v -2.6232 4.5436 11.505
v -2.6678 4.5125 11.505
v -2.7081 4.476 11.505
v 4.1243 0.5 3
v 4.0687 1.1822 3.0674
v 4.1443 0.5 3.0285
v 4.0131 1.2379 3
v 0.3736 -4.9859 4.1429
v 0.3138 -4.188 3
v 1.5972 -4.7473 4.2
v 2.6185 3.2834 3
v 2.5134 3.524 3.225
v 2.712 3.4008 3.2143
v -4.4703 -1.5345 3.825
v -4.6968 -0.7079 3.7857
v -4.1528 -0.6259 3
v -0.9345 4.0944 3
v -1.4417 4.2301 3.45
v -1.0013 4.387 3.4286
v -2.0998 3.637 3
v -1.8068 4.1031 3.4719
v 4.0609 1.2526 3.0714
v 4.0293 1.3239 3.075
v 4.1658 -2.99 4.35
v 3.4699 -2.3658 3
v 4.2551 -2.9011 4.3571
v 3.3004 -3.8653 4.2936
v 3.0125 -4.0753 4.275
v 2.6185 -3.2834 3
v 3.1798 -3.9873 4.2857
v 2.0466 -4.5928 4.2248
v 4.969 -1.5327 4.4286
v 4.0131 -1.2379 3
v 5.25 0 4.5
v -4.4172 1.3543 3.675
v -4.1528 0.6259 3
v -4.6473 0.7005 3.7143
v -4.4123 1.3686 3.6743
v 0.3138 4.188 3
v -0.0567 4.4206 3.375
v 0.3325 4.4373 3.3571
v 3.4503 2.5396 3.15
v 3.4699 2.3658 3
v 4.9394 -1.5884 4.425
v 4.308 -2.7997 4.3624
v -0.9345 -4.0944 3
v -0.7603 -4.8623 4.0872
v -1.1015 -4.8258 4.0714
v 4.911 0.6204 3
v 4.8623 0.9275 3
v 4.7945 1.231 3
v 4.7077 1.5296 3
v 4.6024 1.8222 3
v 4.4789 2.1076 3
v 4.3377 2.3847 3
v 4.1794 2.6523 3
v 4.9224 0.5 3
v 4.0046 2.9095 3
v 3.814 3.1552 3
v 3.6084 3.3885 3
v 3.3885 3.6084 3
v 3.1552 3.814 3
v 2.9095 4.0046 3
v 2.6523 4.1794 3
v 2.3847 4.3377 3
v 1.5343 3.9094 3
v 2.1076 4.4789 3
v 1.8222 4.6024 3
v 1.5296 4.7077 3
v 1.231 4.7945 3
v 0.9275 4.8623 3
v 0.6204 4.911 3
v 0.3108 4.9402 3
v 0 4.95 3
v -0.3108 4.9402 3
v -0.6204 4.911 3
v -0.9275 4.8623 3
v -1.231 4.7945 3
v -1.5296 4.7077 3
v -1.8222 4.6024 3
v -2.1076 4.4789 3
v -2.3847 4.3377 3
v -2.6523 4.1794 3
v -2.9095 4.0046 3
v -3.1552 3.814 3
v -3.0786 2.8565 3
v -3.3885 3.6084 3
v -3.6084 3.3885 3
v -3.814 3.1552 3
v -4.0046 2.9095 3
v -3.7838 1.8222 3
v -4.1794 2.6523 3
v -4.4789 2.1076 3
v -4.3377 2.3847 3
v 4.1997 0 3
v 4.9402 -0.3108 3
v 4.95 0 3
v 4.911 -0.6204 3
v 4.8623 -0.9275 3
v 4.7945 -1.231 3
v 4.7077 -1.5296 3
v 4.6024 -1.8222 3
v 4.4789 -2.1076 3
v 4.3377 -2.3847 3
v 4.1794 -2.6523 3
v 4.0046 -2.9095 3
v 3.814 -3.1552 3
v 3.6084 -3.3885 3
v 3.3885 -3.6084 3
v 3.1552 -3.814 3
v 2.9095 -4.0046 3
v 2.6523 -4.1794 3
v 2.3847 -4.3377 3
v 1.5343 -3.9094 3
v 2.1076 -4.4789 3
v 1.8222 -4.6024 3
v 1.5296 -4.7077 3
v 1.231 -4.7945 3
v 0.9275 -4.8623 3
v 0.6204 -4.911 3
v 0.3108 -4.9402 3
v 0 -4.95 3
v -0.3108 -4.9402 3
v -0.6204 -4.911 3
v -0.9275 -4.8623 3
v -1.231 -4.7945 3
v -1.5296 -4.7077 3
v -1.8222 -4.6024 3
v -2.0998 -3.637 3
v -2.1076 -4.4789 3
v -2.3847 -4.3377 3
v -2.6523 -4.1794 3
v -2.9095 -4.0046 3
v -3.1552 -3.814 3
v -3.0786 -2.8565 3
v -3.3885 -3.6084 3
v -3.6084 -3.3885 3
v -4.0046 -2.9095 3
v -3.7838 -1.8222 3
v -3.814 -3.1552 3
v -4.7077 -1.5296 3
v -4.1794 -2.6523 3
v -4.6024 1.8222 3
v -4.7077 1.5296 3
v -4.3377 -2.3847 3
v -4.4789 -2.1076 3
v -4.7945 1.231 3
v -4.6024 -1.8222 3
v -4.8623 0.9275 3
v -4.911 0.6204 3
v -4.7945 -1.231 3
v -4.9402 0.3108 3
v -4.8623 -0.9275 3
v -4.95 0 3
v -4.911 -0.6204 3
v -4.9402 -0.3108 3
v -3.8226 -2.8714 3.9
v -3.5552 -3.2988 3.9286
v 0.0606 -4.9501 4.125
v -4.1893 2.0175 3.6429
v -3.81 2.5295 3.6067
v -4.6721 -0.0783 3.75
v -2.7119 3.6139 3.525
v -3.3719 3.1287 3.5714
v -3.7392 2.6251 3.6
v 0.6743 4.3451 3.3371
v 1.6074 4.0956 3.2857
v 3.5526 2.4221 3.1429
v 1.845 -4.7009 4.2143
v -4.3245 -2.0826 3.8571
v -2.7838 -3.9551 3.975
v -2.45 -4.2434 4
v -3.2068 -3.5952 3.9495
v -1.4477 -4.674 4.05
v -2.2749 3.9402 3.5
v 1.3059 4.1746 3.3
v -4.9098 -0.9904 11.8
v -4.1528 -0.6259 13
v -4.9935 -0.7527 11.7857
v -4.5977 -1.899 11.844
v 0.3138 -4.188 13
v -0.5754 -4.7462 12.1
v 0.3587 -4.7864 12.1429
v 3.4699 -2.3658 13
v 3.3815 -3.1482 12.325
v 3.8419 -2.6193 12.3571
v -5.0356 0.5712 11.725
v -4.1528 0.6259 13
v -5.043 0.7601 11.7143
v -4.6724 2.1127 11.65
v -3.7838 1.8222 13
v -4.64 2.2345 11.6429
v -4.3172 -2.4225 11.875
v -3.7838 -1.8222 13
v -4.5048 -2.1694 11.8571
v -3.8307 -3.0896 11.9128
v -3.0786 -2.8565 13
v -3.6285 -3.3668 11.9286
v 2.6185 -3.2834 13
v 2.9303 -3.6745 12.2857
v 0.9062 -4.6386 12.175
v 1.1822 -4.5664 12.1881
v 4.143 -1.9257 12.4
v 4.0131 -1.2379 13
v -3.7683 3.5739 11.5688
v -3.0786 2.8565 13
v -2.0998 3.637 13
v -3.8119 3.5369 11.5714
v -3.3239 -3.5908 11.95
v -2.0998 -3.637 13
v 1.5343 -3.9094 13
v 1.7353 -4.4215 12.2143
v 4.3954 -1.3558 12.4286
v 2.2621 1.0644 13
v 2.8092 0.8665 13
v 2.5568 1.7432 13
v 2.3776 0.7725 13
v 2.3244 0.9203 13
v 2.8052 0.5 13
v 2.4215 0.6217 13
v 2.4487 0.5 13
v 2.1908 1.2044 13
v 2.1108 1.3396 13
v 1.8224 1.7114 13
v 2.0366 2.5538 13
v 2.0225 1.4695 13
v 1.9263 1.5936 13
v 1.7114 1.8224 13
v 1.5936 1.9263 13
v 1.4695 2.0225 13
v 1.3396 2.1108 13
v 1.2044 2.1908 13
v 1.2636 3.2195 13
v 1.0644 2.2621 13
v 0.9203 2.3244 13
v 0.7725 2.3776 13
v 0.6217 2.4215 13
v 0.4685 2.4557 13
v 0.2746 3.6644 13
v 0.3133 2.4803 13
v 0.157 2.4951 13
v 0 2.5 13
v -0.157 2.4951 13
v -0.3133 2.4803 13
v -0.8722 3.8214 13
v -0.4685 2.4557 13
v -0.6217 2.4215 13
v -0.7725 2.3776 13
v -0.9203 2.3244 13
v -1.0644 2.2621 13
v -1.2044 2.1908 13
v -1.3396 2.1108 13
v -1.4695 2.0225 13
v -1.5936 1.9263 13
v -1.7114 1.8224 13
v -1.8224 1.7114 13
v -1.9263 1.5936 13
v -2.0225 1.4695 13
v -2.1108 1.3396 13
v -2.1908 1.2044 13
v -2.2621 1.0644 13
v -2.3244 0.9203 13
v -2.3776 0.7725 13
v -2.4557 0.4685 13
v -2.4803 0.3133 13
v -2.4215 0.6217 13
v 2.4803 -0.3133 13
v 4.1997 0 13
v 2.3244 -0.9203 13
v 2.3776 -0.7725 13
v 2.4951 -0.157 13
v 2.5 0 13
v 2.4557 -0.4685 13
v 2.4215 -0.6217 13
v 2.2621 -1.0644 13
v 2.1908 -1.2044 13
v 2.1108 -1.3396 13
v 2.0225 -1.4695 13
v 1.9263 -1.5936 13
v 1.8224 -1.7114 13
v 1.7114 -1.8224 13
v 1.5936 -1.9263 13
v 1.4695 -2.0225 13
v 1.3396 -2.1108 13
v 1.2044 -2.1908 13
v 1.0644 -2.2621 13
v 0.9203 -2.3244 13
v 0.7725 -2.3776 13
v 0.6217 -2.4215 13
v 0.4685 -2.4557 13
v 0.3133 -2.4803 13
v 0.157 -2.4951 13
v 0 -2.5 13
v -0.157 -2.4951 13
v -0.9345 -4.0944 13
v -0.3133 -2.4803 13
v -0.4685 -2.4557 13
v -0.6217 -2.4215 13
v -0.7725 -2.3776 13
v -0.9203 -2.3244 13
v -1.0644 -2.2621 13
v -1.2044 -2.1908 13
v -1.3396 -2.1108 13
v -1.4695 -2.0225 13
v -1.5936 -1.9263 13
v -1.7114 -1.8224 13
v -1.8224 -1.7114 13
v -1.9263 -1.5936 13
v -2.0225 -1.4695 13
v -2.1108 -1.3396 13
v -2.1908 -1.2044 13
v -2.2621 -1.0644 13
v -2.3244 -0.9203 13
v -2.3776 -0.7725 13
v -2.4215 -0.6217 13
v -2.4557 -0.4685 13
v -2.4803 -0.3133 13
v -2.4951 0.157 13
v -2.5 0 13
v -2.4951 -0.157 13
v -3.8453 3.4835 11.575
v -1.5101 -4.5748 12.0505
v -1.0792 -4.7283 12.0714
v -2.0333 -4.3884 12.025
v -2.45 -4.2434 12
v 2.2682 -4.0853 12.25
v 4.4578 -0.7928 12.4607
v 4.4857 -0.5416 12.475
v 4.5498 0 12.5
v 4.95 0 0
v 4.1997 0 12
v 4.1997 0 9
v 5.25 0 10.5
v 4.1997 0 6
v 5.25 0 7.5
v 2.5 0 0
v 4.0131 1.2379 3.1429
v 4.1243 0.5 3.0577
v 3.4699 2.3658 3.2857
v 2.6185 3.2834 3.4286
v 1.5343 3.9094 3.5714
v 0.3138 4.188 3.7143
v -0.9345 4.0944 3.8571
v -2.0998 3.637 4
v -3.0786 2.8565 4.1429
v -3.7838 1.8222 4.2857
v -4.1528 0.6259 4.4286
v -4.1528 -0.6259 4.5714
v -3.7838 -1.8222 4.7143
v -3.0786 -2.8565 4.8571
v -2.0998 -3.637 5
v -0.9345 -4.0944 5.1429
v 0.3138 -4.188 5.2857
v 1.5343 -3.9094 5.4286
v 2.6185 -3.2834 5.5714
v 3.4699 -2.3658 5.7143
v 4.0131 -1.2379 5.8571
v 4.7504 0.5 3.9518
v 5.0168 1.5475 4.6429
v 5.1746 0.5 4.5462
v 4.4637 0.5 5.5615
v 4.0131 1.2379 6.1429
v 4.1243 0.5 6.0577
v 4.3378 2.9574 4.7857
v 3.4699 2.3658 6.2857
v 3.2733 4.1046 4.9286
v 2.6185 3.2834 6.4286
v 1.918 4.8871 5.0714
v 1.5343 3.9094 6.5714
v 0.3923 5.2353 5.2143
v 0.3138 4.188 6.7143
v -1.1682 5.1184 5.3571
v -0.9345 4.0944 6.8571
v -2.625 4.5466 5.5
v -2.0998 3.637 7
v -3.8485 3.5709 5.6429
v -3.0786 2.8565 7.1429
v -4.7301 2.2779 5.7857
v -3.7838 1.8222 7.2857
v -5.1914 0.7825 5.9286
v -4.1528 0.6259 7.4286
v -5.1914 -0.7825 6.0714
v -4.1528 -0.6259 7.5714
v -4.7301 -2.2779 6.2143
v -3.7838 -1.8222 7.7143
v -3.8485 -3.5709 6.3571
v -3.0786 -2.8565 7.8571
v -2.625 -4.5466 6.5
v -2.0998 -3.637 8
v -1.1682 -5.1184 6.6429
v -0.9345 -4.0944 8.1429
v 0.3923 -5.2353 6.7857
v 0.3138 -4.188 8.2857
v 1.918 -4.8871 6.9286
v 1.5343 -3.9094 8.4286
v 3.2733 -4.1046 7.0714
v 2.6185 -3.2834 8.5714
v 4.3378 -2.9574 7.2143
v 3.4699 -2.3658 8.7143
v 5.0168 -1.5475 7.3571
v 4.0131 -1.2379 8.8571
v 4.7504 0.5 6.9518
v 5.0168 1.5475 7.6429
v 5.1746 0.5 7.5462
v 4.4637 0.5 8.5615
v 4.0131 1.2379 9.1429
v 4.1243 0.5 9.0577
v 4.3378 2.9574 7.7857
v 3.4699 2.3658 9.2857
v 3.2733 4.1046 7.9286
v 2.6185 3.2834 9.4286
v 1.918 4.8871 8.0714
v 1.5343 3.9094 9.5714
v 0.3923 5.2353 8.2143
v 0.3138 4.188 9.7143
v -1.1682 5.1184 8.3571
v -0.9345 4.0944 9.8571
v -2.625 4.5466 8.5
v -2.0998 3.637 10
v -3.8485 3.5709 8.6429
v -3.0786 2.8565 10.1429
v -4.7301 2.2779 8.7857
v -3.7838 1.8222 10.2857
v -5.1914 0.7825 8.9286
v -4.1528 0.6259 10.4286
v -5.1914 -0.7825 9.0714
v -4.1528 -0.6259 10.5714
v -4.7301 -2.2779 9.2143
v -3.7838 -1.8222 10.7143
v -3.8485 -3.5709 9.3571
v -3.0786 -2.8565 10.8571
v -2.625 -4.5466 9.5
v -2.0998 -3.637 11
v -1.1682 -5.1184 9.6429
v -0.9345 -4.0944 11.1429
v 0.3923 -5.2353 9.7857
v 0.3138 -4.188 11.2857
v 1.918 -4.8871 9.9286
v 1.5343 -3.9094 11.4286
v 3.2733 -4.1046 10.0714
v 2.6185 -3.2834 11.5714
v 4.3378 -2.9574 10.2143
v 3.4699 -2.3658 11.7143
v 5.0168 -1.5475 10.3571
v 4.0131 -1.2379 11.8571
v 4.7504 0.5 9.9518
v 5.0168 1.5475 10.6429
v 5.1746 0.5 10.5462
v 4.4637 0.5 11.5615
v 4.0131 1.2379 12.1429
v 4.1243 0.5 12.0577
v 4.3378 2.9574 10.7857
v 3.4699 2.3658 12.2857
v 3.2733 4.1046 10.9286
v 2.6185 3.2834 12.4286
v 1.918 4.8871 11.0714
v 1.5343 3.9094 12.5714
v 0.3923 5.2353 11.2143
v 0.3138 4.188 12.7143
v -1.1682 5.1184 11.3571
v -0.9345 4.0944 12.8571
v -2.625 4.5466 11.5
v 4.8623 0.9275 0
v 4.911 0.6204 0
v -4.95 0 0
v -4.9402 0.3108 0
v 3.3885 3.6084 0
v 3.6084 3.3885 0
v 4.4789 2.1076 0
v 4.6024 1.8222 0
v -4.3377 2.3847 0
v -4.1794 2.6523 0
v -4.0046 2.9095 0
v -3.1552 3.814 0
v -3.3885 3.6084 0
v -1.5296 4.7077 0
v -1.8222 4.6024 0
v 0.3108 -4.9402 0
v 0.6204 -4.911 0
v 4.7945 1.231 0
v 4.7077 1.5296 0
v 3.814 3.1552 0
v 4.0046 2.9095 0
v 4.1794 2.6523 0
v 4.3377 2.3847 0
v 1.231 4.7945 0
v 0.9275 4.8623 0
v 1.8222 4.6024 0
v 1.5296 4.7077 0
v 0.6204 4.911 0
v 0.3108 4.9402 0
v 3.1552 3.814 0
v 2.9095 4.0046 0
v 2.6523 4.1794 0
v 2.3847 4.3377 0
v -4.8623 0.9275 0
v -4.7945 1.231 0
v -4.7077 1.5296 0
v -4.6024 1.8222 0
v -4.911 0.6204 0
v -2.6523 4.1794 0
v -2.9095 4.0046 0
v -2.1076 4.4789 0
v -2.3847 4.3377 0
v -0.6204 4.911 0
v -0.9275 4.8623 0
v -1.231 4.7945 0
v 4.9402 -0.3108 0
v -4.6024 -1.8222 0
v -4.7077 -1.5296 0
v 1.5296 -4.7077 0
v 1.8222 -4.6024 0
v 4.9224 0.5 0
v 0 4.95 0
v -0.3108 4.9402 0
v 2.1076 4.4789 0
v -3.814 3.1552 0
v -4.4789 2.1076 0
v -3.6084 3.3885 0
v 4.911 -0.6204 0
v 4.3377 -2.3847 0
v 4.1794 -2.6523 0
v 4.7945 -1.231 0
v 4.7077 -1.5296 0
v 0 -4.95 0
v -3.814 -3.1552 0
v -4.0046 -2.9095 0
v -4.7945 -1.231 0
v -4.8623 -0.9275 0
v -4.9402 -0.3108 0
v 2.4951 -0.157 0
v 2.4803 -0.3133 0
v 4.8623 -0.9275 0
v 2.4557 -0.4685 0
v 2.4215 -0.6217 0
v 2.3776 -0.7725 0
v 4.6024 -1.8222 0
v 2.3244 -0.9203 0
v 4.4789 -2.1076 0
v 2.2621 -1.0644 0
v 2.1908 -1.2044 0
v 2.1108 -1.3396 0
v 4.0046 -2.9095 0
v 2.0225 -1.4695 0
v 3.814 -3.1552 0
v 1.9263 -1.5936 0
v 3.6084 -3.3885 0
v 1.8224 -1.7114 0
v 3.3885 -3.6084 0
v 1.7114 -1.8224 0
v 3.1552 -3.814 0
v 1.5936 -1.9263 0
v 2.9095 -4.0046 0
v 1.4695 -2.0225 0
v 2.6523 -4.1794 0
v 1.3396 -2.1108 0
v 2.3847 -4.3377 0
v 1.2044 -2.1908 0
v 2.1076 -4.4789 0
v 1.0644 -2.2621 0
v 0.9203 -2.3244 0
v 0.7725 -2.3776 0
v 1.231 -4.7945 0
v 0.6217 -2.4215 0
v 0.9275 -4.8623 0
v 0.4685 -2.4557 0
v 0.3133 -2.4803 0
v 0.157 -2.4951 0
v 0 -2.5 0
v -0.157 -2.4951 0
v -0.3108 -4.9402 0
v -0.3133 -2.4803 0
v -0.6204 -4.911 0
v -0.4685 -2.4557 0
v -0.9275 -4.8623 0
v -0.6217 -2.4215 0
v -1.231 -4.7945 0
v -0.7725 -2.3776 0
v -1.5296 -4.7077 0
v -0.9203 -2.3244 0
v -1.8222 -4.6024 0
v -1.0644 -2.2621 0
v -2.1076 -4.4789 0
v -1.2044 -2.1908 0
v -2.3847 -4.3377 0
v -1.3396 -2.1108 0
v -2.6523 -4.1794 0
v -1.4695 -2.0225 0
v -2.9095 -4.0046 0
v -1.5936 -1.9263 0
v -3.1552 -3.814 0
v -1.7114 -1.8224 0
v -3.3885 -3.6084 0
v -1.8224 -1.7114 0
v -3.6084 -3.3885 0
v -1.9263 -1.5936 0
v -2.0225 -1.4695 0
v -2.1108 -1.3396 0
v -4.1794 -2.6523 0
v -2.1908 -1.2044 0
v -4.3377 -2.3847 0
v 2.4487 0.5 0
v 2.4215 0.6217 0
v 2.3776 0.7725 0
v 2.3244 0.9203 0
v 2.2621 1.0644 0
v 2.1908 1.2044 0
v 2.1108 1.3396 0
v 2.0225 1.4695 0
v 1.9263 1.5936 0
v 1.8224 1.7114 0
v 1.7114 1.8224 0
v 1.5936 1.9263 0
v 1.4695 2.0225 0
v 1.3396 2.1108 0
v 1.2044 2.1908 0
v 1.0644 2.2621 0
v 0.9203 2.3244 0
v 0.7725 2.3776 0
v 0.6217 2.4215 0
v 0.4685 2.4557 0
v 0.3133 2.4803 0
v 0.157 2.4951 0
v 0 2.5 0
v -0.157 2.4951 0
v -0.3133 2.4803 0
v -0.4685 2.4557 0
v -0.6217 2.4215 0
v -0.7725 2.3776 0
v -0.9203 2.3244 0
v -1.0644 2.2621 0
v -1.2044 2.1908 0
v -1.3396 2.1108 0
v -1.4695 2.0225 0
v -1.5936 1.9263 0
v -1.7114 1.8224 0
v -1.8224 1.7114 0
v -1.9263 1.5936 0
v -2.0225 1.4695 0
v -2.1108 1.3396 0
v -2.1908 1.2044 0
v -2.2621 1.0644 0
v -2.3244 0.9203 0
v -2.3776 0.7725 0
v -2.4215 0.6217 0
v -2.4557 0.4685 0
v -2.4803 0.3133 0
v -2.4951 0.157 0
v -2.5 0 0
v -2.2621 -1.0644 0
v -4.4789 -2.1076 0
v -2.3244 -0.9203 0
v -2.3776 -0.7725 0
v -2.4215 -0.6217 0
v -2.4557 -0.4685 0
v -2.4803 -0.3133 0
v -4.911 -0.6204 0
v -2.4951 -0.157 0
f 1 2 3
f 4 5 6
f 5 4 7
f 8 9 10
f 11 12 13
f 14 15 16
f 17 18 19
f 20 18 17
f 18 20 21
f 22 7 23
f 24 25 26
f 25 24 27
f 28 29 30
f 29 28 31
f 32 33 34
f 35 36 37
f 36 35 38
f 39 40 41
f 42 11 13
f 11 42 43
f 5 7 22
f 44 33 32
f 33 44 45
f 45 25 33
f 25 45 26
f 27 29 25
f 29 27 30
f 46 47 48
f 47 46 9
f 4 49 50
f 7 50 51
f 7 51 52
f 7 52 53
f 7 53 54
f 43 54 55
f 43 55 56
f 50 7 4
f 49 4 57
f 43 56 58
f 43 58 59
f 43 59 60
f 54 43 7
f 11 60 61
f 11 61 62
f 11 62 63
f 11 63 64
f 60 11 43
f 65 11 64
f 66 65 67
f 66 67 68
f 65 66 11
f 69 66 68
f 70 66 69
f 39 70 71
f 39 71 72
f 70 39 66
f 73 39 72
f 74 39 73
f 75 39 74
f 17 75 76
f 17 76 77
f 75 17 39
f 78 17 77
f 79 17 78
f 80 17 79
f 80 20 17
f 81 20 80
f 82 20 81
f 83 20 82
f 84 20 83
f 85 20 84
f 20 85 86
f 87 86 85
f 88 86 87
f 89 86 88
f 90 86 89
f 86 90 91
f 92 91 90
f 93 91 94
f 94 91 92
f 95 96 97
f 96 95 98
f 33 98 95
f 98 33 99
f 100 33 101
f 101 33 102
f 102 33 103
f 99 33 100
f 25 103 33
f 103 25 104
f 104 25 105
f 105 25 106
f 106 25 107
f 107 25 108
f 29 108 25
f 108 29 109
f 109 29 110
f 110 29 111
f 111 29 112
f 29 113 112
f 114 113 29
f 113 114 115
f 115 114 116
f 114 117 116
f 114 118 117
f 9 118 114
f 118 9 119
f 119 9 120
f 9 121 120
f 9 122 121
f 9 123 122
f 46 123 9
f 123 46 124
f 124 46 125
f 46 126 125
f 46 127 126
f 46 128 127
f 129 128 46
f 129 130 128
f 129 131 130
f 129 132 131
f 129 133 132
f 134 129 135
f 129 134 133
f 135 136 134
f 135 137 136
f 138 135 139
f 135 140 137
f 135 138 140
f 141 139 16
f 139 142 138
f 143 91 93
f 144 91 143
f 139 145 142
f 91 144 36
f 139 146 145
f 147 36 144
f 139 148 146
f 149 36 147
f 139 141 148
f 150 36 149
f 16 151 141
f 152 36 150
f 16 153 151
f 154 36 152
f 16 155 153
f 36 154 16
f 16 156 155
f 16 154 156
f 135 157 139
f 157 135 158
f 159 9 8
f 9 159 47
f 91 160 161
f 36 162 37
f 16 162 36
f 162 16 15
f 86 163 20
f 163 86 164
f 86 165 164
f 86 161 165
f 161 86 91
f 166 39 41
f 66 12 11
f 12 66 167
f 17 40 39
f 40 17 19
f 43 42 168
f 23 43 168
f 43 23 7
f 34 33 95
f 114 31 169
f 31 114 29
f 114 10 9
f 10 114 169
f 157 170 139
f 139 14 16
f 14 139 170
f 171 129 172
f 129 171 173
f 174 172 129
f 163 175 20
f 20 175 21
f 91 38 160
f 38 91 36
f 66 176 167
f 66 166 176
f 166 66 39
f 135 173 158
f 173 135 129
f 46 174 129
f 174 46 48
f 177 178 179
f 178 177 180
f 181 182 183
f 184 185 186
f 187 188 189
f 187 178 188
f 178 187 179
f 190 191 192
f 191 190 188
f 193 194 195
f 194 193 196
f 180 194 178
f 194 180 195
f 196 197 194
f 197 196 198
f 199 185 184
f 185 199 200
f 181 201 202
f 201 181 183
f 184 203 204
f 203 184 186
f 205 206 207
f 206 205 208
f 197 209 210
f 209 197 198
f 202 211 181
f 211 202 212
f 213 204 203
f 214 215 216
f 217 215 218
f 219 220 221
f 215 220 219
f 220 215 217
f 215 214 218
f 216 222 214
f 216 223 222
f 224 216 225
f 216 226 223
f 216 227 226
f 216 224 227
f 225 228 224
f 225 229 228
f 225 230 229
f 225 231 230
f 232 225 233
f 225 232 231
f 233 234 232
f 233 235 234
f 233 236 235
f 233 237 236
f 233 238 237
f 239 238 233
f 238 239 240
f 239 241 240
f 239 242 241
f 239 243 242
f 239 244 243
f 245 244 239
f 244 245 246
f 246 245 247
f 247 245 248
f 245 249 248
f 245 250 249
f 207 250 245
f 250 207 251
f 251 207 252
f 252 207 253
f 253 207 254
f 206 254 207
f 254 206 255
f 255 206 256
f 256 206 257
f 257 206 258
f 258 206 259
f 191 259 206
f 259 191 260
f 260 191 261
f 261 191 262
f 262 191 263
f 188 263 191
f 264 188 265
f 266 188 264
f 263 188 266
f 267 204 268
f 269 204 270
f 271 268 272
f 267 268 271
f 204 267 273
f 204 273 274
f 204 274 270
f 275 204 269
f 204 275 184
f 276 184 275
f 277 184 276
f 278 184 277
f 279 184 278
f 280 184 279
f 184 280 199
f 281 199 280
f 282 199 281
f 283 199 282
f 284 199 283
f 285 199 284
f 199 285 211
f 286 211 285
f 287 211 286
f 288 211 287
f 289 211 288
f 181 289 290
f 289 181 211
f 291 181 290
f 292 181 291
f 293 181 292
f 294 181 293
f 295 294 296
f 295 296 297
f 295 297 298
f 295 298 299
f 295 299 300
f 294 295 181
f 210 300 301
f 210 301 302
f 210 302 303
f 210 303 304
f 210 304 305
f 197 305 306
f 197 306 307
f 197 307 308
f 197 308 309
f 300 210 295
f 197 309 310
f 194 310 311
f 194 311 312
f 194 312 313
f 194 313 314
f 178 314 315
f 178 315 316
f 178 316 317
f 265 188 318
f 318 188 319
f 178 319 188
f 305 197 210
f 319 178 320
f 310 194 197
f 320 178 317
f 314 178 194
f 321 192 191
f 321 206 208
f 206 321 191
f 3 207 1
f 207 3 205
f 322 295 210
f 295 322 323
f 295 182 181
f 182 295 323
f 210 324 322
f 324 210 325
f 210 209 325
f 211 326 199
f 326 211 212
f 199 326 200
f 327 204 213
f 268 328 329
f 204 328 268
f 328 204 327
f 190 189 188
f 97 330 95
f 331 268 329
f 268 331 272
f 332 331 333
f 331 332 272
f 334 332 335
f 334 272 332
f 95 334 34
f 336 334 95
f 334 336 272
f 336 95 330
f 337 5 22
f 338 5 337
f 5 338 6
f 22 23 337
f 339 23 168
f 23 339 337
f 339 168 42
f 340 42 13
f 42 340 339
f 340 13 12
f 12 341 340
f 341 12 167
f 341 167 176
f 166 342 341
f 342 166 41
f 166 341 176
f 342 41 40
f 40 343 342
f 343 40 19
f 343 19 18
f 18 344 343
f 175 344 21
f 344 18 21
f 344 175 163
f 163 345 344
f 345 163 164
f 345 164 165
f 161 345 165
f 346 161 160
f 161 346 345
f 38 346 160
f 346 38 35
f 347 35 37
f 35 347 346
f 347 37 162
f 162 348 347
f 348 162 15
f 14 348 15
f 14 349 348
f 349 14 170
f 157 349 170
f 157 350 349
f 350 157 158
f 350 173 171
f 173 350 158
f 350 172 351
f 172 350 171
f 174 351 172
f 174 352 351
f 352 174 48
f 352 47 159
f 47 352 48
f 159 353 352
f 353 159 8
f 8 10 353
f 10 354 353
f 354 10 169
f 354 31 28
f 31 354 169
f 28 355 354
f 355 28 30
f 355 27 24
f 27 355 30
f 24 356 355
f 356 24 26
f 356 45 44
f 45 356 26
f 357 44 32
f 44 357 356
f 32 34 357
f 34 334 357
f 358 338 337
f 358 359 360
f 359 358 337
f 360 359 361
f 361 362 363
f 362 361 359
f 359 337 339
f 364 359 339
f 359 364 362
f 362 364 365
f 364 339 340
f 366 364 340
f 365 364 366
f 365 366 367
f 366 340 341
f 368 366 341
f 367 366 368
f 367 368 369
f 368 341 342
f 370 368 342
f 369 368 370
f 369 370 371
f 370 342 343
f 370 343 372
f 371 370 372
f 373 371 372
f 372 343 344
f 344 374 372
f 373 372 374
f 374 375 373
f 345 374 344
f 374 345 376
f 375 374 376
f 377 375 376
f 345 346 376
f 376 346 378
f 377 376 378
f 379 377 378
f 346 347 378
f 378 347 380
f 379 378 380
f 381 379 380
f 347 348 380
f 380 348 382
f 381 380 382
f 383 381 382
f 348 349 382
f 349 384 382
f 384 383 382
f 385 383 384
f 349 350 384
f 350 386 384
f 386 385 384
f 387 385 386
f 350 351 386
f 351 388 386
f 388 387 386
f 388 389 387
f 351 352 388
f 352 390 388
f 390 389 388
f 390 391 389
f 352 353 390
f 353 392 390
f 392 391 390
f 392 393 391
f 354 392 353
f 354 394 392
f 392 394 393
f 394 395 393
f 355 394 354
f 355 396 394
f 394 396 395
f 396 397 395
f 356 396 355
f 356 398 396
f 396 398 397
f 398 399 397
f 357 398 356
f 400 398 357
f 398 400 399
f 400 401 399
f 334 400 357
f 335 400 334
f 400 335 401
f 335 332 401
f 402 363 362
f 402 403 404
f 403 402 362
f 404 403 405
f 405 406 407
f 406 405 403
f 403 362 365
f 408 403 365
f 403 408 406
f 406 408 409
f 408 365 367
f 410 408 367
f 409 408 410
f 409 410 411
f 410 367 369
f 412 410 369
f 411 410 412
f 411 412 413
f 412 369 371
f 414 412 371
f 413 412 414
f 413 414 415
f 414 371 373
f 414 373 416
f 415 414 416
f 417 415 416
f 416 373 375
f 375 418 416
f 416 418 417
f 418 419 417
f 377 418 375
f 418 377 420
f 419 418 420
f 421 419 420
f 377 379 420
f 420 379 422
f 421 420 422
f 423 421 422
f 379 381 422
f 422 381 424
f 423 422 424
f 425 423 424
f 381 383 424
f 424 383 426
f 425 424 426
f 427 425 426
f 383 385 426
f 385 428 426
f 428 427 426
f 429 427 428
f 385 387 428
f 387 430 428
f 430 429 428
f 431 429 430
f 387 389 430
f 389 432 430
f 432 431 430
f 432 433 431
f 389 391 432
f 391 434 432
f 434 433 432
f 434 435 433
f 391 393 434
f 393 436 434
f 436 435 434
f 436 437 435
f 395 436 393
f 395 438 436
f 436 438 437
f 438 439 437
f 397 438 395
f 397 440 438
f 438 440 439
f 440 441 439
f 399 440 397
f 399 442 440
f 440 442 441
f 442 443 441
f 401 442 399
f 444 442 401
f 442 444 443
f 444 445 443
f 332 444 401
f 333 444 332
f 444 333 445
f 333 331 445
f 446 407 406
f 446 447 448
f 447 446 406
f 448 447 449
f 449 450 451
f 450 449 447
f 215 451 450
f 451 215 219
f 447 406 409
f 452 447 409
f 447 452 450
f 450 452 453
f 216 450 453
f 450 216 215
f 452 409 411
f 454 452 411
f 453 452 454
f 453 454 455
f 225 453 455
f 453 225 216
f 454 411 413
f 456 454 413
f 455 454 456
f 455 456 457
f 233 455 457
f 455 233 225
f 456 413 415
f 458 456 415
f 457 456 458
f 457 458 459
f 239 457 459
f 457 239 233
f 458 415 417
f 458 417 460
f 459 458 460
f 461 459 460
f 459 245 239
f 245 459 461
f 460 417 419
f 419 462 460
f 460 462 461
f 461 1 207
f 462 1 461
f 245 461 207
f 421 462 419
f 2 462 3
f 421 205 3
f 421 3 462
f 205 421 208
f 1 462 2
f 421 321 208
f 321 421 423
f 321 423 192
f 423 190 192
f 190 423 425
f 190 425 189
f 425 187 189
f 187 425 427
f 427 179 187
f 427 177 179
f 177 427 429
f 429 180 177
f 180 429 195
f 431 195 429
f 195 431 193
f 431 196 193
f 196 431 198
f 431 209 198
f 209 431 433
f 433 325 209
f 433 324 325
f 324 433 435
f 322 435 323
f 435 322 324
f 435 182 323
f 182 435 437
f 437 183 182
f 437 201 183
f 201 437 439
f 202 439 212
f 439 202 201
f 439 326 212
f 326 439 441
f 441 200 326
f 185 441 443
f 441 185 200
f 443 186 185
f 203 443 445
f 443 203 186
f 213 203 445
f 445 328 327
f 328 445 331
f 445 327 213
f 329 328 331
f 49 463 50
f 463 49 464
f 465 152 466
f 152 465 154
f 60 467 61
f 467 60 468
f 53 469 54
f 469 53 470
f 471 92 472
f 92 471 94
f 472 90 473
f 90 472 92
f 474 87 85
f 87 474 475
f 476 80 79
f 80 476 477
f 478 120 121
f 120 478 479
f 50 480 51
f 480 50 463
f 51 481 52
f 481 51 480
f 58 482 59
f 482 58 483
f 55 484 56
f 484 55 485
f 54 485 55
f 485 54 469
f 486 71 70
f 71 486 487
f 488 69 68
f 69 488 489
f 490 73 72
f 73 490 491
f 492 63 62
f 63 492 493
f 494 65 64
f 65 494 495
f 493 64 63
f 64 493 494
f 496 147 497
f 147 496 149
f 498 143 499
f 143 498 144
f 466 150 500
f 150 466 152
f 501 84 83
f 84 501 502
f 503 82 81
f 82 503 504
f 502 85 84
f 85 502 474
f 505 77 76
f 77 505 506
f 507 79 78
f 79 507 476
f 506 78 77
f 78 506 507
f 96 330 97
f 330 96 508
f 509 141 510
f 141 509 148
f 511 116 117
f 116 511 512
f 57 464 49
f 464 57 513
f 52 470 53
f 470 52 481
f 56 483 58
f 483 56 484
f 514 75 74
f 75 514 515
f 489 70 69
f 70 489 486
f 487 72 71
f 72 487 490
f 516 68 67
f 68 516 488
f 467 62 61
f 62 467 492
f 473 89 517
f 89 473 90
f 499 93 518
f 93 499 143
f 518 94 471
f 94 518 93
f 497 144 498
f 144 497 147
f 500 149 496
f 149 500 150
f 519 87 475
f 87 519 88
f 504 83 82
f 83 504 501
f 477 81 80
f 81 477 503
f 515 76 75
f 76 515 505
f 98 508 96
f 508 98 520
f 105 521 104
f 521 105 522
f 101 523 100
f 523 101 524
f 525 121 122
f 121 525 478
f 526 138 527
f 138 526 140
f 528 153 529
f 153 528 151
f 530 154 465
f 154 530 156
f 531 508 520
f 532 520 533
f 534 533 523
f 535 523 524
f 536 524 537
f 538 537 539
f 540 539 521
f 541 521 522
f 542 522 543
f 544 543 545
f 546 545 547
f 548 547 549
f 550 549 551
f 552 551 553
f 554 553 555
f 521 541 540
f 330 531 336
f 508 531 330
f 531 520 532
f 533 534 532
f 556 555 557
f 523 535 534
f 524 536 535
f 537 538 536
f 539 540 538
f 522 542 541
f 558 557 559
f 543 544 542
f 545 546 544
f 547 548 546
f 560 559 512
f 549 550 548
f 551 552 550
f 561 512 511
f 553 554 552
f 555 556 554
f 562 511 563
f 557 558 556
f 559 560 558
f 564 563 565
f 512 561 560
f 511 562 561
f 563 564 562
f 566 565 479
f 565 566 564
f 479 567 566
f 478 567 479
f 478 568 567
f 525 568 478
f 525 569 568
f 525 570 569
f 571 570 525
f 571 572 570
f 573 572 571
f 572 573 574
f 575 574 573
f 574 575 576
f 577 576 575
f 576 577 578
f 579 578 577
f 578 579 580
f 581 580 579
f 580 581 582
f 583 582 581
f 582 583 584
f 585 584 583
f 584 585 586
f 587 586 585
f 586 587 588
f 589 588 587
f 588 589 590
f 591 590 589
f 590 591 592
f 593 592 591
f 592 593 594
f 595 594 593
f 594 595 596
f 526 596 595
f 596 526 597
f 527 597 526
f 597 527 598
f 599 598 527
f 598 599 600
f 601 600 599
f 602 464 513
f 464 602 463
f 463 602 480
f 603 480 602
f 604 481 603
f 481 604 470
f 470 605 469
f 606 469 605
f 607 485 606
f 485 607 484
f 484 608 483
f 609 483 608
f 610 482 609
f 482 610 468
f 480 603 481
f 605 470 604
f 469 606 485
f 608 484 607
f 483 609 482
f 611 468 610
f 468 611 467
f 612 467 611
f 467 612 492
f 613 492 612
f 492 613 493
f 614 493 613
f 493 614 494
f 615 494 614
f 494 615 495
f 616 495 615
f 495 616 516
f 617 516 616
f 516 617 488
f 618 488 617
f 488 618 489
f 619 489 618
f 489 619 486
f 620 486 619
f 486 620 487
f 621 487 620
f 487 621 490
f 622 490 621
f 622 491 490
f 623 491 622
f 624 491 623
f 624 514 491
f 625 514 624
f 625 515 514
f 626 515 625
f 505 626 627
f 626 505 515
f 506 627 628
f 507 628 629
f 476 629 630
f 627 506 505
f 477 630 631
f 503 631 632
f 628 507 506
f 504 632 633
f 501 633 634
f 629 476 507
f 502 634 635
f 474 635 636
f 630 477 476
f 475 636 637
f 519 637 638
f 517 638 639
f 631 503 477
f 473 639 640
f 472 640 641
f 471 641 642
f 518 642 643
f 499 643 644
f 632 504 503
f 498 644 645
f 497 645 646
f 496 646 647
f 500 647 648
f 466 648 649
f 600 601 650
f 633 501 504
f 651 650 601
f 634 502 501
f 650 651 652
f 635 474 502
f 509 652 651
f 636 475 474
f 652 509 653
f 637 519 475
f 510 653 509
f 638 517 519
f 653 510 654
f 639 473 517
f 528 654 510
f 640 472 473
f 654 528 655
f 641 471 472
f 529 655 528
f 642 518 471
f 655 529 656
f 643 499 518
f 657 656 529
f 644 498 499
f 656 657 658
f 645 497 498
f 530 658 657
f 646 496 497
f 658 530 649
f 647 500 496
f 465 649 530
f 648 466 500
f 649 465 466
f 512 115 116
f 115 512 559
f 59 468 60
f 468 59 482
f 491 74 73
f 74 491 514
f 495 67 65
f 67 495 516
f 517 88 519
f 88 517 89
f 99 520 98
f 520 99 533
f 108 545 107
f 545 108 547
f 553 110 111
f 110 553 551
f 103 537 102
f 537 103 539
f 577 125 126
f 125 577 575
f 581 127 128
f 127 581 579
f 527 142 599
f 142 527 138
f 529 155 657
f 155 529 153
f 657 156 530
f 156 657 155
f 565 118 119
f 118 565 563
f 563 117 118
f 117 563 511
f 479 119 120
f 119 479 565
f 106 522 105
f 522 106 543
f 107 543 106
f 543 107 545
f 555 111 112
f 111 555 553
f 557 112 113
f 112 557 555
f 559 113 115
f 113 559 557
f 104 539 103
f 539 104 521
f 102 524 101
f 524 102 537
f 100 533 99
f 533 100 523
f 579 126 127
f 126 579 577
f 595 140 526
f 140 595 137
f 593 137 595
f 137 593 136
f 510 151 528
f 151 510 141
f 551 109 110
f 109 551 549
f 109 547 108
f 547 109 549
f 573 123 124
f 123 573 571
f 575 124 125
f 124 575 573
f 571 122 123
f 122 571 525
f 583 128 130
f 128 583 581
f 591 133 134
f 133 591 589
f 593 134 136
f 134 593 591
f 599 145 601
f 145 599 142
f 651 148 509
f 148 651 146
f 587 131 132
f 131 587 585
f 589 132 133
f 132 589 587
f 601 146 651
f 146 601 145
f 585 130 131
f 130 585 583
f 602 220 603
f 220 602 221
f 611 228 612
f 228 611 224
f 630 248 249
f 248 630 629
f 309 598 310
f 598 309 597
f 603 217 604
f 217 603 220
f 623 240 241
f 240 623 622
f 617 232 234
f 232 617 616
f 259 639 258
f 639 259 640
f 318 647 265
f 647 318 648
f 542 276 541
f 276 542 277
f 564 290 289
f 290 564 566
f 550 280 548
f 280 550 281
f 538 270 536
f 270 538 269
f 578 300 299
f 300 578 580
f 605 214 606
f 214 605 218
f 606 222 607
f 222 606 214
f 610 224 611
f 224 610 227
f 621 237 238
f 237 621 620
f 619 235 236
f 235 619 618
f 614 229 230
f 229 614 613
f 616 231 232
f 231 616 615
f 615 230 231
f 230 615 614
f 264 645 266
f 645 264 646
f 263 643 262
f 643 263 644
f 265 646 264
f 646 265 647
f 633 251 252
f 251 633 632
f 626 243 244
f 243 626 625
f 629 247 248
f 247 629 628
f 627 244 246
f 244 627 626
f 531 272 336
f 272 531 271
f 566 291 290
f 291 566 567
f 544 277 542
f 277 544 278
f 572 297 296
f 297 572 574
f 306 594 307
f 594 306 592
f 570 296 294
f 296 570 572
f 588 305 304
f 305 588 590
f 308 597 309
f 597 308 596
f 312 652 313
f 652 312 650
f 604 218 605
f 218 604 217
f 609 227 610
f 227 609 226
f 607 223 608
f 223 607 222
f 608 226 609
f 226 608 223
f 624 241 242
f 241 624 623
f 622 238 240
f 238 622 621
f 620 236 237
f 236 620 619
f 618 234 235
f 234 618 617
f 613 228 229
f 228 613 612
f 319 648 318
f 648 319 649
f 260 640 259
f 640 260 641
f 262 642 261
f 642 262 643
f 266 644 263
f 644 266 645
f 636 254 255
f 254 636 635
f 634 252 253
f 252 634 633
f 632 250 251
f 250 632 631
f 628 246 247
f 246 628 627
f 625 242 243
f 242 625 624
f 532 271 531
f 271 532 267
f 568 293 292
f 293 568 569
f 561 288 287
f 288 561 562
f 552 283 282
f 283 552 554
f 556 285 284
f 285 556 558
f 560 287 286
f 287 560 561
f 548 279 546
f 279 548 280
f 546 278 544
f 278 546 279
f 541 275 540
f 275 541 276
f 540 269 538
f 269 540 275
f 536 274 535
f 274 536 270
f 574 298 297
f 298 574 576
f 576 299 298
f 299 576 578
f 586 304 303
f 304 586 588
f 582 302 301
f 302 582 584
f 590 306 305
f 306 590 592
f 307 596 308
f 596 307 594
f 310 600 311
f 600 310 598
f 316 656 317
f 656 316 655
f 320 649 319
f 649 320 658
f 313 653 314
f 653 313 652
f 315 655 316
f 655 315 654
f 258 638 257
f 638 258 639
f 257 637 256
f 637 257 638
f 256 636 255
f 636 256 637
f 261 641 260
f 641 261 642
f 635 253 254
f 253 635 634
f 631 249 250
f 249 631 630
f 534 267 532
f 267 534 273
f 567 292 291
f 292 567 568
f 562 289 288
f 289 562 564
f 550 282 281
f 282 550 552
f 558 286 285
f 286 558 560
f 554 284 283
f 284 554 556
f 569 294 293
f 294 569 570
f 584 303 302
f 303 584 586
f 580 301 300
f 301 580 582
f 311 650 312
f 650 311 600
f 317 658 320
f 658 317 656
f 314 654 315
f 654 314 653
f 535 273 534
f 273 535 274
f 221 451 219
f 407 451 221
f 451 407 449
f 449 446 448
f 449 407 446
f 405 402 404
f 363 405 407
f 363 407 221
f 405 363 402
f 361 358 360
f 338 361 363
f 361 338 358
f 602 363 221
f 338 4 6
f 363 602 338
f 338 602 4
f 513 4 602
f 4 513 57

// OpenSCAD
// file: ../src/polyScrewThread_r1.scad
/*
 *    polyScrewThread_r1.scad    by aubenc @ Thingiverse
 *
 * This script contains the library modules that can be used to generate
 * threaded rods, screws and nuts.
 *
 * http://www.thingiverse.com/thing:8796
 *
 * CC Public Domain
 */


/* Example:
 * Just a 100mm long threaded rod.
 *
 * screw_thread(15,   // Outer diameter of the thread
 *               4,   // Step, traveling length per turn, also, tooth height, whatever...
 *              55,   // Degrees for the shape of the tooth 
 *                       (XY plane = 0, Z = 90, btw, 0 and 90 will/should not work...)
 *             100,   // Length (Z) of the tread
 *            PI/2,   // Resolution, one face each "PI/2" mm of the perimeter, 
 *               0);  // Countersink style:
 *                         -2 - Not even flat ends
 *                         -1 - Bottom (countersink'd and top flat)
 *                          0 - None (top and bottom flat)
 *                          1 - Top (bottom flat)
 *                          2 - Both (countersink'd)
 */
module screw_thread(od,st,lf0,lt,rs,cs)
{
    or=od/2;
    ir=or-st/2*cos(lf0)/sin(lf0);
    pf=2*PI*or;
    sn=floor(pf/rs);
    lfxy=360/sn;
    ttn=round(lt/st+1);
    zt=st/sn;

    intersection()
    {
        if (cs >= -1)
        {
           thread_shape(cs,lt,or,ir,sn,st);
        }

        full_thread(ttn,st,sn,zt,lfxy,or,ir);
    }
}

/* Example.
 * A nut for the thread rod example.
 *
 * hexa_nut(24,  // Distance between flats
 *           8,  // Height 
 *           4,  // Step height (the half will be used to countersink the ends)
 *          55,  // Degrees (same as used for the screw_thread example)
 *          15,  // Outer diameter of the thread to match
 *         0.5)  // Resolution, you may want to set this to small values
 *                  (quite high res) to minimize overhang issues
 *
 */
module hex_nut(df,hg,sth,clf,cod,crs)
{

    difference()
    {
        hex_head(hg,df);

        hex_countersink_ends(sth/2,cod,clf,crs,hg);

        screw_thread(cod,sth,clf,hg,crs,-2);
    }
}


module hex_screw(od,st,lf0,lt,rs,cs,df,hg,ntl,ntd)
{
    ntr=od/2-(st/2)*cos(lf0)/sin(lf0);

    union()
    {
        hex_head(hg,df);

        translate([0,0,hg])
        if ( ntl == 0 )
        {
            cylinder(h=0.01, r=ntr, center=true);
        }
        else
        {
            if ( ntd == -1 )
            {
                cylinder(h=ntl+0.01, r=ntr, $fn=floor(od*PI/rs), center=false);
            }
            else if ( ntd == 0 )
            {
                union()
                {
                    cylinder(h=ntl-st/2,
                             r=od/2, $fn=floor(od*PI/rs), center=false);

                    translate([0,0,ntl-st/2])
                    cylinder(h=st/2,
                             r1=od/2, r2=ntr, 
                             $fn=floor(od*PI/rs), center=false);
                }
            }
            else
            {
                cylinder(h=ntl, r=ntd/2, $fn=ntd*PI/rs, center=false);
            }
        }

        translate([0,0,ntl+hg]) screw_thread(od,st,lf0,lt,rs,cs);
    }
}

module hex_screw_0(od,st,lf0,lt,rs,cs,df,hg,ntl,ntd)
{
    ntr=od/2-(st/2)*cos(lf0)/sin(lf0);

    union()
    {
        hex_head_0(hg,df);

        translate([0,0,hg])
        if ( ntl == 0 )
        {
            cylinder(h=0.01, r=ntr, center=true);
        }
        else
        {
            if ( ntd == -1 )
            {
                cylinder(h=ntl+0.01, r=ntr, $fn=floor(od*PI/rs), center=false);
            }
            else if ( ntd == 0 )
            {
                union()
                {
                    cylinder(h=ntl-st/2,
                             r=od/2, $fn=floor(od*PI/rs), center=false);

                    translate([0,0,ntl-st/2])
                    cylinder(h=st/2,
                             r1=od/2, r2=ntr, 
                             $fn=floor(od*PI/rs), center=false);
                }
            }
            else
            {
                cylinder(h=ntl, r=ntd/2, $fn=ntd*PI/rs, center=false);
            }
        }

        translate([0,0,ntl+hg]) screw_thread(od,st,lf0,lt,rs,cs);
    }
}

module thread_shape(cs,lt,or,ir,sn,st)
{
    if ( cs == 0 )
    {
        cylinder(h=lt, r=or, $fn=sn, center=false);
    }
    else
    {
        union()
        {
            translate([0,0,st/2])
              cylinder(h=lt-st+0.005, r=or, $fn=sn, center=false);

            if ( cs == -1 || cs == 2 )
            {
                cylinder(h=st/2, r1=ir, r2=or, $fn=sn, center=false);
            }
            else
            {
                cylinder(h=st/2, r=or, $fn=sn, center=false);
            }

            translate([0,0,lt-st/2])
            if ( cs == 1 || cs == 2 )
            {
                  cylinder(h=st/2, r1=or, r2=ir, $fn=sn, center=false);
            }
            else
            {
                cylinder(h=st/2, r=or, $fn=sn, center=false);
            }
        }
    }
}

module full_thread(ttn,st,sn,zt,lfxy,or,ir)
{
  if(ir >= 0.2)
  {
    for(i=[0:ttn-1])
    {
        for(j=[0:sn-1])
			assign( pt = [	[0,                  0,                  i*st-st            ],
                        [ir*cos(j*lfxy),     ir*sin(j*lfxy),     i*st+j*zt-st       ],
                        [ir*cos((j+1)*lfxy), ir*sin((j+1)*lfxy), i*st+(j+1)*zt-st   ],
								[0,0,i*st],
                        [or*cos(j*lfxy),     or*sin(j*lfxy),     i*st+j*zt-st/2     ],
                        [or*cos((j+1)*lfxy), or*sin((j+1)*lfxy), i*st+(j+1)*zt-st/2 ],
                        [ir*cos(j*lfxy),     ir*sin(j*lfxy),     i*st+j*zt          ],
                        [ir*cos((j+1)*lfxy), ir*sin((j+1)*lfxy), i*st+(j+1)*zt      ],
                        [0,                  0,                  i*st+st            ]	])
        {
            polyhedron(points=pt,
              		  triangles=[	[1,0,3],[1,3,6],[6,3,8],[1,6,4],
											[0,1,2],[1,4,2],[2,4,5],[5,4,6],[5,6,7],[7,6,8],
											[7,8,3],[0,2,3],[3,2,7],[7,2,5]	]);
        }
    }
  }
  else
  {
    echo("Step Degrees too agresive, the thread will not be made!!");
    echo("Try to increase de value for the degrees and/or...");
    echo(" decrease the pitch value and/or...");
    echo(" increase the outer diameter value.");
  }
}

module hex_head(hg,df)
{
	rd0=df/2/sin(60);
	x0=0;	x1=df/2;	x2=x1+hg/2;
	y0=0;	y1=hg/2;	y2=hg;

	intersection()
	{
	   cylinder(h=hg, r=rd0, $fn=6, center=false);

		rotate_extrude(convexity=10, $fn=6*round(df*PI/6/0.5))
		polygon([ [x0,y0],[x1,y0],[x2,y1],[x1,y2],[x0,y2] ]);
	}
}

module hex_head_0(hg,df)
{
    cylinder(h=hg, r=df/2/sin(60), $fn=6, center=false);
}

module hex_countersink_ends(chg,cod,clf,crs,hg)
{
    translate([0,0,-0.1])
    cylinder(h=chg+0.01, 
             r1=cod/2, 
             r2=cod/2-(chg+0.1)*cos(clf)/sin(clf),
             $fn=floor(cod*PI/crs), center=false);

    translate([0,0,hg-chg+0.1])
    cylinder(h=chg+0.01, 
             r1=cod/2-(chg+0.1)*cos(clf)/sin(clf),
             r2=cod/2, 
             $fn=floor(cod*PI/crs), center=false);
}
// file: ../src/WINDGAUGE02A_R02.scad
$fn=100; // model faces resolution.
include <../configuration.scad>
include <polyScrewThread_r1.scad>
PI=3.141592;

//Drzak rotoru se závitem

WINDGAUGE02A_R02();

module WINDGAUGE02A_R02()
    {
    //setihrana matice
    difference()
        {
        union()
            {
            //závit
            screw_thread((12-S01_tolerance_zavit),3,55,R01_vyska_preryti_statoru,PI/2,2);  
                           
            //spodní podložka        
            translate([0,0,-R01_mezera_mezi_statorem_rotorem/2])    
                cylinder (h = R01_mezera_mezi_statorem_rotorem, r=(lozisko_prumer_vnitrni+2*lozisko_prekryv+2)/2, center = true, $fn=100);     
            }
                  
        //otvor  
        translate([0,0,-R01_mezera_mezi_statorem_rotorem-0.05])        
            cylinder (h = R01_vyska_preryti_statoru+R01_mezera_mezi_statorem_rotorem+0.1, r=prumer_osicky/2, $fn=100);


//sterbina
translate([0,0,-R01_mezera_mezi_statorem_rotorem]) 
   cube([(lozisko_prumer_vnitrni+2*lozisko_prekryv+2)/2+2,sterbina_na_osicku,R01_vyska_preryti_statoru+R01_mezera_mezi_statorem_rotorem+0.2]);


        }

    }
// file: ../configuration.scad
$fn=40; // model faces resolution.

//OBECNE PARAMETRY 
//----------------------------------------------------------------
//----------------------------------------------------------------
//WINDGAUGE02A_S02 - Parametry pro hlavni valec anemometru
S01_hloubka_zavitu=4;
S01_vyska=95; //80
S01_prumer_vnitrni=45;
S01_prumer_vnitrniB=30;
S01_prechod_vyska=45;
S01_prechod_delka=30;
S01_sila_materialu=1.3;
S01_vyska_horni_zavit=10;
S01_vyska_spodniho_zavitu=10;
S01_sila_drzaku_RJ11=3; //vyška drážky
S01_hrana_A_RJ11=12.3;
S01_hrana_B_RJ11=19;
S01_tolerance_zavit=1.5;

//Obecné parametry
prumer_osicky=5;
sterbina_na_osicku=0.5; //aby nepraskal a držel držák rotoru na hřídelce

//Rozmery modulu pro lozisko
senzor_delka=10.16*4;
senzor_sirka=10.16*3;
senzor_vyska_IO=2;
senzor_odstup_od_magnetu=2;

//Parametry loziska
lozisko_prumer_vnitrni=4.9;
lozisko_prumer_vnejsi=16.15;
lozisko_vyska=5*2;
lozisko_prekryv=1.5;

//Parametry magnetu
magnet_pocet=3;
magnet_prumer=6.3;
magnet_vyska=3;
magnet_zapusteni=2;
magnet_tolerance_prumeru=0.2;
magnet_vzdalenost = 9; // vzdalenost magnetu od stredu

R03_vyska_narezeni_hridelky=5;

//Parametry sroubu
prumer_sroubu=3.4;
prumer_hlavy_sroubu=6;
vyska_hlavy_sroubu=4;
vyska_matky=3;
sirka_matky=6.7;

sirka_matky_tol=0.175;
prumer_orechu=10;

//WINDGAUGE02A_R01 //pro lopatku
L01_hrana_drzaku_a=10;
L01_hrana_drzaku_b=3;
L01_delka_uchytu=25;
L01_prumer_lopatky=40;
L01_sila_materialu_lopatky=1.2;

//WINDGAUGE02A_D01 //uchyt velky
D01_material_pod_zavitem=5;
D01_material_za_zavitem=3;
D01_material_pred_zavitem=2;
D01_delka_tyce=60;
D01_sirka_tyce=10;

//WINDGAUGE02A_D02 //uchyt na sloup
D02_sila_materialu=4;
D02_vyska_uchytky=30;
D02_prumer_obruby=24; 

//27mm - 3/4 trubka
D02_delka_celeho_uchytu=60;
D02_dotahova_vzdalenost=1.5;
D02_prumer_uchytneho_sroubu=4.2;
//D02_sirka_matky=9.1; //pro M4
//D02_vyska_matky=3;
D02_sirka_matky= sirka_matky; //pro M3
D02_vyska_matky= vyska_matky;

//WINDGAUGE02A_R01 //rotor s prekritim statoru
R01_vyska_preryti_statoru=10;
R01_sila_materialu_pro_prekriti=1.3;
R01_mezera_mezi_statorem_rotorem=3;

//WINDGAUGE02A_R03 //drzak magnetu
R05_sirka_matky=10;
// main file
$fn=100; // model faces resolution.
include <../configuration.scad>
use <../src/WINDGAUGE02A_R02.scad>

translate([0,0,R01_mezera_mezi_statorem_rotorem])
    WINDGAUGE02A_R02();

            
